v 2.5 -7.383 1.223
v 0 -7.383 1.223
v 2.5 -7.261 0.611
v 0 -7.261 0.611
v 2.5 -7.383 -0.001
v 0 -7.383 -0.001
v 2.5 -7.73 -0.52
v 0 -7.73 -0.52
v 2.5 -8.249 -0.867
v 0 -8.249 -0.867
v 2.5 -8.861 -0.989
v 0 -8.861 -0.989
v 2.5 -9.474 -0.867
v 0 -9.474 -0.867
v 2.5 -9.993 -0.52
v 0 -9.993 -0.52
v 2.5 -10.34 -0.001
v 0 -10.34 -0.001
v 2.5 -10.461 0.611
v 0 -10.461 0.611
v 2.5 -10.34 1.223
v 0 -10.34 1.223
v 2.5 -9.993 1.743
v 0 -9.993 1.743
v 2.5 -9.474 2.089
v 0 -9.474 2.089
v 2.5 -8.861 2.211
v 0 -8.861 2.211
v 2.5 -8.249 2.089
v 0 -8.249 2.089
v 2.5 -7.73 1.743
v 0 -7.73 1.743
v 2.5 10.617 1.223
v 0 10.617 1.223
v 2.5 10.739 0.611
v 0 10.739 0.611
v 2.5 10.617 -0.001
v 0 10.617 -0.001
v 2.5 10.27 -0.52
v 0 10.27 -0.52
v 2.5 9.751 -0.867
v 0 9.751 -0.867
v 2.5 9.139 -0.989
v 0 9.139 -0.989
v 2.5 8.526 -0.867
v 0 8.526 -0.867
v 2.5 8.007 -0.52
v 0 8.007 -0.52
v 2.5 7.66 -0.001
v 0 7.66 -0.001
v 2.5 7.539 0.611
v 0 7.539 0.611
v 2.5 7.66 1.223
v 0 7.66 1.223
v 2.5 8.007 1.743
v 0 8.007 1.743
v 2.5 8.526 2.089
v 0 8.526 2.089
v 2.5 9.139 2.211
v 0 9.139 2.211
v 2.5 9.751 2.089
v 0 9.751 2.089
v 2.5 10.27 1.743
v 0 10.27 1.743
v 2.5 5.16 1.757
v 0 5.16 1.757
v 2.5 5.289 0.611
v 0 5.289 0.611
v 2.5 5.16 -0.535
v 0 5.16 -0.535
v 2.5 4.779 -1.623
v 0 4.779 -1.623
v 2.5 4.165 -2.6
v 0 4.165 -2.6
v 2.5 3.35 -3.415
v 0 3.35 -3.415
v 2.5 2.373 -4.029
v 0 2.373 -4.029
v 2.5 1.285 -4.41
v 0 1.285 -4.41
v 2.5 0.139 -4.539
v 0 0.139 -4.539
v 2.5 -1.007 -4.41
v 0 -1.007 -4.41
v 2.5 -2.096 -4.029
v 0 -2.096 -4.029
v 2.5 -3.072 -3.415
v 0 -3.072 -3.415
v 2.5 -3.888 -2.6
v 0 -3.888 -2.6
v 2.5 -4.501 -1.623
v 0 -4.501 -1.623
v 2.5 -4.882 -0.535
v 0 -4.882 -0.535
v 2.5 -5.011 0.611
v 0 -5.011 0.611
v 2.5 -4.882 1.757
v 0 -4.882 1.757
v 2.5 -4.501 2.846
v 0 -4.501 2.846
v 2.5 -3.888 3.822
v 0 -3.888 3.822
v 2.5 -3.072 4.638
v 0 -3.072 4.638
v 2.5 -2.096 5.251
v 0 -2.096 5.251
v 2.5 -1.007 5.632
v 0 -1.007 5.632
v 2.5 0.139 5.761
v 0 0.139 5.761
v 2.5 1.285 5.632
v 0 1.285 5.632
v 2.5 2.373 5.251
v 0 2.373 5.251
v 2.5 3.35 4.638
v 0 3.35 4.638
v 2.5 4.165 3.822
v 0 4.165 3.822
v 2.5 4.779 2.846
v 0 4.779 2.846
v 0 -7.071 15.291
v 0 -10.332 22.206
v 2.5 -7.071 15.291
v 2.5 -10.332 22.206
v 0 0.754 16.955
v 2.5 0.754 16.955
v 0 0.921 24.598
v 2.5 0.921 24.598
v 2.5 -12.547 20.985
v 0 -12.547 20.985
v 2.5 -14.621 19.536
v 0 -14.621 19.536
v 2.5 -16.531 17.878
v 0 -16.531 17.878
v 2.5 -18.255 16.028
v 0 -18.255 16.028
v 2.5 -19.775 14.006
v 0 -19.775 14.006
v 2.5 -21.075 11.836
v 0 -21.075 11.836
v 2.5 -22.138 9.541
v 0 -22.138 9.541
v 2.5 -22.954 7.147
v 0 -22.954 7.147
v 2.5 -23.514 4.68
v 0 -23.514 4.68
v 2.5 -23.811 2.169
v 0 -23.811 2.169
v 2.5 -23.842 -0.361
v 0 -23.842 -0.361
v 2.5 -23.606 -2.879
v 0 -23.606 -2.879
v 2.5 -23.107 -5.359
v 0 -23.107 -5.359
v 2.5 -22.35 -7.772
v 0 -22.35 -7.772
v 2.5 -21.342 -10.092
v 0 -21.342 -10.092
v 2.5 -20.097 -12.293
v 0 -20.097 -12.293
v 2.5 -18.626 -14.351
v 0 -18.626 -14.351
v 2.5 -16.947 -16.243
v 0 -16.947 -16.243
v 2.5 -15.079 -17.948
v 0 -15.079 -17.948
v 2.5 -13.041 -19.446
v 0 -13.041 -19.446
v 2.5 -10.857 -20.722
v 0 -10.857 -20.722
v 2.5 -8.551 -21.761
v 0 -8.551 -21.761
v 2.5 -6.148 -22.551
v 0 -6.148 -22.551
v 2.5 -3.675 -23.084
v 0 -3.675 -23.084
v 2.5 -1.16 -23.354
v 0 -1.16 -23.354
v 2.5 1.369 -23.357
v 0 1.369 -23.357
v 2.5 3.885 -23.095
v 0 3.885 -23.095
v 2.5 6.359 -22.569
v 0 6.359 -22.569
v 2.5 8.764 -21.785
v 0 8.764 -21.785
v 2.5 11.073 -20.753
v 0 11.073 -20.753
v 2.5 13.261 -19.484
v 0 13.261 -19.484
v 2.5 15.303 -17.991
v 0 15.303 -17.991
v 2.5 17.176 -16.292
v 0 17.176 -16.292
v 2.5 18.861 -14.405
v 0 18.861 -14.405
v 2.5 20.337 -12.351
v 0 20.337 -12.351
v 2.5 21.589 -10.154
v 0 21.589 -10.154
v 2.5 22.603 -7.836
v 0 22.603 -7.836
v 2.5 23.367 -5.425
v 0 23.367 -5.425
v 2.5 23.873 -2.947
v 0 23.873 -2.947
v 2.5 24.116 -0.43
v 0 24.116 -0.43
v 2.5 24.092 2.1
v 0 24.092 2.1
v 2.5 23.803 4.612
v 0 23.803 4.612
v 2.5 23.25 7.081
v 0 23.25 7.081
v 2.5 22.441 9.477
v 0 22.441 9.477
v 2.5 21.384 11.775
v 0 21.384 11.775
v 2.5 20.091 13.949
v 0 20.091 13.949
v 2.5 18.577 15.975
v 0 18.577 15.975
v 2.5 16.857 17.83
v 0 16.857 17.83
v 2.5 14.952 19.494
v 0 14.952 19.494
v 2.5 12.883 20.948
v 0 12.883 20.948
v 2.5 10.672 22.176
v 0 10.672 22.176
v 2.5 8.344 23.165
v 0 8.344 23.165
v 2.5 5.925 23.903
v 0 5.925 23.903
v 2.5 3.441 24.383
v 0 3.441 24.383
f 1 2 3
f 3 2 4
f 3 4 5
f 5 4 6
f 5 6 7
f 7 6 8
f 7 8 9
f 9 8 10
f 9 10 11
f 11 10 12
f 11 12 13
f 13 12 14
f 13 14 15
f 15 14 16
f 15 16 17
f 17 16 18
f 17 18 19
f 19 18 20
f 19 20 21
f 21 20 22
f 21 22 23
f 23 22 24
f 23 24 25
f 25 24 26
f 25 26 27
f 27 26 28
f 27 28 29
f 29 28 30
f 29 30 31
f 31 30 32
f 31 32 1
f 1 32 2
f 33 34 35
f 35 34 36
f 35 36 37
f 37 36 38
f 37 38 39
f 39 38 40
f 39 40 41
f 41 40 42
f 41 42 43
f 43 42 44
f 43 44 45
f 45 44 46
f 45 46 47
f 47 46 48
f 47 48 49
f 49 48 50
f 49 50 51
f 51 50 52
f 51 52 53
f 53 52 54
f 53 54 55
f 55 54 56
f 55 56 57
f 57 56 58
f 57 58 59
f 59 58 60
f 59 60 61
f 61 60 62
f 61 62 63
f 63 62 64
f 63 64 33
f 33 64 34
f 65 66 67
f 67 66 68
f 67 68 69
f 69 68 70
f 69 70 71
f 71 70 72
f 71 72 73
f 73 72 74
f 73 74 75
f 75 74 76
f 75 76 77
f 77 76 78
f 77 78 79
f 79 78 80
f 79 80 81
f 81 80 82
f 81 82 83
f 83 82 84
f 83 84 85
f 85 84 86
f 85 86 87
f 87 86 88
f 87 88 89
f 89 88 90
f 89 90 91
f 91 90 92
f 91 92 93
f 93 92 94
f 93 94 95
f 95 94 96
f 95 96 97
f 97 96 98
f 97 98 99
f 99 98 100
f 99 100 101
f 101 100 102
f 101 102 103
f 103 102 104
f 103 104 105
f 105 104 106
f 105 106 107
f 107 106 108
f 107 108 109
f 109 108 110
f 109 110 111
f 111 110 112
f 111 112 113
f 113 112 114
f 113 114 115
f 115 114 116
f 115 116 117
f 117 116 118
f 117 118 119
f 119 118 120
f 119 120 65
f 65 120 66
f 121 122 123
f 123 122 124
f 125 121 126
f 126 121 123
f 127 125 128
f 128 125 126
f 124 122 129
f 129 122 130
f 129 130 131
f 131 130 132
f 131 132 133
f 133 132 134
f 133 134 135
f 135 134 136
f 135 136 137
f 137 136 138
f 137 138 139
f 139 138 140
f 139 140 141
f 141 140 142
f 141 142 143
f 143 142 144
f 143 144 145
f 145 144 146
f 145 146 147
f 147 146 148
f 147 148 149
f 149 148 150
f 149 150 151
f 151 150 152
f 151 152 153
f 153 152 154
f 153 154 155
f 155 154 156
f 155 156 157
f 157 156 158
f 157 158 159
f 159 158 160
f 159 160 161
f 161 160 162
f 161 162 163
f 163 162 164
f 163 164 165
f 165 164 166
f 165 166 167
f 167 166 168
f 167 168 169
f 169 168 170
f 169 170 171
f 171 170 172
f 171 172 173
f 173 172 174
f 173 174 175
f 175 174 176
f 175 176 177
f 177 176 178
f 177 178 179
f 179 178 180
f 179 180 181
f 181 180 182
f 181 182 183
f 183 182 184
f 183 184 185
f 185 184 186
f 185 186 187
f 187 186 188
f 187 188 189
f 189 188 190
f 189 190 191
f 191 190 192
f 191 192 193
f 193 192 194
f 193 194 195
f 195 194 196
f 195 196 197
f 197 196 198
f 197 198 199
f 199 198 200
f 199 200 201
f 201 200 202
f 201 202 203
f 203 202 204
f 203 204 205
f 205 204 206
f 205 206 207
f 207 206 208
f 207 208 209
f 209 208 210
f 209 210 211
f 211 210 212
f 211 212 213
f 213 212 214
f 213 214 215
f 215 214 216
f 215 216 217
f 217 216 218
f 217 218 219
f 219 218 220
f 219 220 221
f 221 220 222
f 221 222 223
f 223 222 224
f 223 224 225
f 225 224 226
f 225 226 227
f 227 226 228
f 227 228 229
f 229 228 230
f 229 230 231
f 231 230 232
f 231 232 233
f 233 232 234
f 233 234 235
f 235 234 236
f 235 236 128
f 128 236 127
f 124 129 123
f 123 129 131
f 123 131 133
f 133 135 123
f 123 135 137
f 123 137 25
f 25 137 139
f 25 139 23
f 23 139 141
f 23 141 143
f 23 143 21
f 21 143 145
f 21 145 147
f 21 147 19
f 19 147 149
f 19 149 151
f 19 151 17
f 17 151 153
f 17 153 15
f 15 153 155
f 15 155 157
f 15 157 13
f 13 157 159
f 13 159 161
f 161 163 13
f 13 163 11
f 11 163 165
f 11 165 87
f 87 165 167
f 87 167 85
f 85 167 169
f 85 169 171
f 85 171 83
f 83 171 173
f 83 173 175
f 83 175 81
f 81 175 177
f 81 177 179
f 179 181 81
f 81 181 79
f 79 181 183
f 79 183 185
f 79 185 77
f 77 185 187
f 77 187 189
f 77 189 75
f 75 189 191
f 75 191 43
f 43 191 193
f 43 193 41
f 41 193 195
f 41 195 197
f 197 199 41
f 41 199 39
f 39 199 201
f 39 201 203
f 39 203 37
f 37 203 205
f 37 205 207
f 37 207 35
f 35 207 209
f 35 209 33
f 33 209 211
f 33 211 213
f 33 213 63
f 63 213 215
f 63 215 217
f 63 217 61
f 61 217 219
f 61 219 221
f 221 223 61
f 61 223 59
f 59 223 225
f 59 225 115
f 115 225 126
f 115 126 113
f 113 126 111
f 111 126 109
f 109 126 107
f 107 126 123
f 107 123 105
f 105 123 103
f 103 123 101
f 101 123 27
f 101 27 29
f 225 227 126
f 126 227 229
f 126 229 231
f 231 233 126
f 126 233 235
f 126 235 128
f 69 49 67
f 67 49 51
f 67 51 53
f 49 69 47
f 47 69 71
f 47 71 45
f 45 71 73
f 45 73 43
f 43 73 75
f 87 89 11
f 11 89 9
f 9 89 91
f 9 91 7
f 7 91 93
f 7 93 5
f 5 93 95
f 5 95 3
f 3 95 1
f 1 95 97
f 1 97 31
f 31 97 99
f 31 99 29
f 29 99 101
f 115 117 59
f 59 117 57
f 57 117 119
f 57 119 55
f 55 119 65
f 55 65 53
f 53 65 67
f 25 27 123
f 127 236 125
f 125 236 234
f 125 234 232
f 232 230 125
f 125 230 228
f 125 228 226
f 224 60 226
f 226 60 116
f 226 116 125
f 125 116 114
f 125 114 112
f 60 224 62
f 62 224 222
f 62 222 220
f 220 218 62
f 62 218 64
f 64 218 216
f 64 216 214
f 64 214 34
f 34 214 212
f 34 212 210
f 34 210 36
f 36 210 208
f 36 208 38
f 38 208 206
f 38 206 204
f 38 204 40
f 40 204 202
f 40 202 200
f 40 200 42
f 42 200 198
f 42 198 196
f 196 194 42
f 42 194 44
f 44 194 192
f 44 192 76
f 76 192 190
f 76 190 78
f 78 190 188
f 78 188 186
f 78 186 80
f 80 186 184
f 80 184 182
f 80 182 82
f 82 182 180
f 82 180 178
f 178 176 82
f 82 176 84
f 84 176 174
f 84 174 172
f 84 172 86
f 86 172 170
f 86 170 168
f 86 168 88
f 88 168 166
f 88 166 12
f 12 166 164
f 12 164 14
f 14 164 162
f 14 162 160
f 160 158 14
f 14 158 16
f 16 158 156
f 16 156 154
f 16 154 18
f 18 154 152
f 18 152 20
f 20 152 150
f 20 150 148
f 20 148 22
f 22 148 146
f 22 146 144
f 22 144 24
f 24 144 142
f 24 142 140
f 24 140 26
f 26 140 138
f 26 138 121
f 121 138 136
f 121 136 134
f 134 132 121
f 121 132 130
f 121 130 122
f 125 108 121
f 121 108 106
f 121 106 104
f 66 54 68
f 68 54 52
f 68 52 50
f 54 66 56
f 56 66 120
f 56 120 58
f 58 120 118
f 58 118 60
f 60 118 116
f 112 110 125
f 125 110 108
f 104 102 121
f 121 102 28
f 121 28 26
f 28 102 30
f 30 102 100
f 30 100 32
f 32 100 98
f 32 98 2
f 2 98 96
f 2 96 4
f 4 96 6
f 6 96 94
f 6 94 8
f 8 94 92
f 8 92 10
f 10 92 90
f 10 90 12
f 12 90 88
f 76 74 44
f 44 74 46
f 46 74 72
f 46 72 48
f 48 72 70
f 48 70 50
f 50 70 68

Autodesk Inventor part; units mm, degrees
ref_plane "YZ Plane" through (0, 0, 0) normal (1, 0, 0) x (0, 1, 0)
ref_plane "XZ Plane" through (0, 0, 0) normal (0, 1, 0) x (-1, 0, 0)
ref_plane "XY Plane" through (0, 0, 0) normal (0, 0, 1) x (1, 0, 0)
sketch "スケッチ2" plane through (0, 0, 0) normal (1, 0, 0) x (0, 1, 0)
  line L0 (-7.071, 15.2913) -> (-10.3324, 22.2065)
  arc A0 (-10.3324, 22.2065) -> (0.9209, 24.5984) centre (0.1387, 0.6112) ccw
  line L1 (0.9209, 24.5984) -> (0.7542, 16.9546)
  line L2 (0.7542, 16.9546) -> (-7.071, 15.2913)
  circle A1 centre (-8.8613, 0.6112) radius 1.6
  circle A2 centre (9.1387, 0.6112) radius 1.6
  circle A3 centre (0.1387, 0.6112) radius 5.15
  point P0 (0, 0)
extrude "押し出し2" add sketch "スケッチ2" along normal blind 2.5
properties part number "belt_liner_v2_3DP_P-4-F" material "ABS プラスチック"
